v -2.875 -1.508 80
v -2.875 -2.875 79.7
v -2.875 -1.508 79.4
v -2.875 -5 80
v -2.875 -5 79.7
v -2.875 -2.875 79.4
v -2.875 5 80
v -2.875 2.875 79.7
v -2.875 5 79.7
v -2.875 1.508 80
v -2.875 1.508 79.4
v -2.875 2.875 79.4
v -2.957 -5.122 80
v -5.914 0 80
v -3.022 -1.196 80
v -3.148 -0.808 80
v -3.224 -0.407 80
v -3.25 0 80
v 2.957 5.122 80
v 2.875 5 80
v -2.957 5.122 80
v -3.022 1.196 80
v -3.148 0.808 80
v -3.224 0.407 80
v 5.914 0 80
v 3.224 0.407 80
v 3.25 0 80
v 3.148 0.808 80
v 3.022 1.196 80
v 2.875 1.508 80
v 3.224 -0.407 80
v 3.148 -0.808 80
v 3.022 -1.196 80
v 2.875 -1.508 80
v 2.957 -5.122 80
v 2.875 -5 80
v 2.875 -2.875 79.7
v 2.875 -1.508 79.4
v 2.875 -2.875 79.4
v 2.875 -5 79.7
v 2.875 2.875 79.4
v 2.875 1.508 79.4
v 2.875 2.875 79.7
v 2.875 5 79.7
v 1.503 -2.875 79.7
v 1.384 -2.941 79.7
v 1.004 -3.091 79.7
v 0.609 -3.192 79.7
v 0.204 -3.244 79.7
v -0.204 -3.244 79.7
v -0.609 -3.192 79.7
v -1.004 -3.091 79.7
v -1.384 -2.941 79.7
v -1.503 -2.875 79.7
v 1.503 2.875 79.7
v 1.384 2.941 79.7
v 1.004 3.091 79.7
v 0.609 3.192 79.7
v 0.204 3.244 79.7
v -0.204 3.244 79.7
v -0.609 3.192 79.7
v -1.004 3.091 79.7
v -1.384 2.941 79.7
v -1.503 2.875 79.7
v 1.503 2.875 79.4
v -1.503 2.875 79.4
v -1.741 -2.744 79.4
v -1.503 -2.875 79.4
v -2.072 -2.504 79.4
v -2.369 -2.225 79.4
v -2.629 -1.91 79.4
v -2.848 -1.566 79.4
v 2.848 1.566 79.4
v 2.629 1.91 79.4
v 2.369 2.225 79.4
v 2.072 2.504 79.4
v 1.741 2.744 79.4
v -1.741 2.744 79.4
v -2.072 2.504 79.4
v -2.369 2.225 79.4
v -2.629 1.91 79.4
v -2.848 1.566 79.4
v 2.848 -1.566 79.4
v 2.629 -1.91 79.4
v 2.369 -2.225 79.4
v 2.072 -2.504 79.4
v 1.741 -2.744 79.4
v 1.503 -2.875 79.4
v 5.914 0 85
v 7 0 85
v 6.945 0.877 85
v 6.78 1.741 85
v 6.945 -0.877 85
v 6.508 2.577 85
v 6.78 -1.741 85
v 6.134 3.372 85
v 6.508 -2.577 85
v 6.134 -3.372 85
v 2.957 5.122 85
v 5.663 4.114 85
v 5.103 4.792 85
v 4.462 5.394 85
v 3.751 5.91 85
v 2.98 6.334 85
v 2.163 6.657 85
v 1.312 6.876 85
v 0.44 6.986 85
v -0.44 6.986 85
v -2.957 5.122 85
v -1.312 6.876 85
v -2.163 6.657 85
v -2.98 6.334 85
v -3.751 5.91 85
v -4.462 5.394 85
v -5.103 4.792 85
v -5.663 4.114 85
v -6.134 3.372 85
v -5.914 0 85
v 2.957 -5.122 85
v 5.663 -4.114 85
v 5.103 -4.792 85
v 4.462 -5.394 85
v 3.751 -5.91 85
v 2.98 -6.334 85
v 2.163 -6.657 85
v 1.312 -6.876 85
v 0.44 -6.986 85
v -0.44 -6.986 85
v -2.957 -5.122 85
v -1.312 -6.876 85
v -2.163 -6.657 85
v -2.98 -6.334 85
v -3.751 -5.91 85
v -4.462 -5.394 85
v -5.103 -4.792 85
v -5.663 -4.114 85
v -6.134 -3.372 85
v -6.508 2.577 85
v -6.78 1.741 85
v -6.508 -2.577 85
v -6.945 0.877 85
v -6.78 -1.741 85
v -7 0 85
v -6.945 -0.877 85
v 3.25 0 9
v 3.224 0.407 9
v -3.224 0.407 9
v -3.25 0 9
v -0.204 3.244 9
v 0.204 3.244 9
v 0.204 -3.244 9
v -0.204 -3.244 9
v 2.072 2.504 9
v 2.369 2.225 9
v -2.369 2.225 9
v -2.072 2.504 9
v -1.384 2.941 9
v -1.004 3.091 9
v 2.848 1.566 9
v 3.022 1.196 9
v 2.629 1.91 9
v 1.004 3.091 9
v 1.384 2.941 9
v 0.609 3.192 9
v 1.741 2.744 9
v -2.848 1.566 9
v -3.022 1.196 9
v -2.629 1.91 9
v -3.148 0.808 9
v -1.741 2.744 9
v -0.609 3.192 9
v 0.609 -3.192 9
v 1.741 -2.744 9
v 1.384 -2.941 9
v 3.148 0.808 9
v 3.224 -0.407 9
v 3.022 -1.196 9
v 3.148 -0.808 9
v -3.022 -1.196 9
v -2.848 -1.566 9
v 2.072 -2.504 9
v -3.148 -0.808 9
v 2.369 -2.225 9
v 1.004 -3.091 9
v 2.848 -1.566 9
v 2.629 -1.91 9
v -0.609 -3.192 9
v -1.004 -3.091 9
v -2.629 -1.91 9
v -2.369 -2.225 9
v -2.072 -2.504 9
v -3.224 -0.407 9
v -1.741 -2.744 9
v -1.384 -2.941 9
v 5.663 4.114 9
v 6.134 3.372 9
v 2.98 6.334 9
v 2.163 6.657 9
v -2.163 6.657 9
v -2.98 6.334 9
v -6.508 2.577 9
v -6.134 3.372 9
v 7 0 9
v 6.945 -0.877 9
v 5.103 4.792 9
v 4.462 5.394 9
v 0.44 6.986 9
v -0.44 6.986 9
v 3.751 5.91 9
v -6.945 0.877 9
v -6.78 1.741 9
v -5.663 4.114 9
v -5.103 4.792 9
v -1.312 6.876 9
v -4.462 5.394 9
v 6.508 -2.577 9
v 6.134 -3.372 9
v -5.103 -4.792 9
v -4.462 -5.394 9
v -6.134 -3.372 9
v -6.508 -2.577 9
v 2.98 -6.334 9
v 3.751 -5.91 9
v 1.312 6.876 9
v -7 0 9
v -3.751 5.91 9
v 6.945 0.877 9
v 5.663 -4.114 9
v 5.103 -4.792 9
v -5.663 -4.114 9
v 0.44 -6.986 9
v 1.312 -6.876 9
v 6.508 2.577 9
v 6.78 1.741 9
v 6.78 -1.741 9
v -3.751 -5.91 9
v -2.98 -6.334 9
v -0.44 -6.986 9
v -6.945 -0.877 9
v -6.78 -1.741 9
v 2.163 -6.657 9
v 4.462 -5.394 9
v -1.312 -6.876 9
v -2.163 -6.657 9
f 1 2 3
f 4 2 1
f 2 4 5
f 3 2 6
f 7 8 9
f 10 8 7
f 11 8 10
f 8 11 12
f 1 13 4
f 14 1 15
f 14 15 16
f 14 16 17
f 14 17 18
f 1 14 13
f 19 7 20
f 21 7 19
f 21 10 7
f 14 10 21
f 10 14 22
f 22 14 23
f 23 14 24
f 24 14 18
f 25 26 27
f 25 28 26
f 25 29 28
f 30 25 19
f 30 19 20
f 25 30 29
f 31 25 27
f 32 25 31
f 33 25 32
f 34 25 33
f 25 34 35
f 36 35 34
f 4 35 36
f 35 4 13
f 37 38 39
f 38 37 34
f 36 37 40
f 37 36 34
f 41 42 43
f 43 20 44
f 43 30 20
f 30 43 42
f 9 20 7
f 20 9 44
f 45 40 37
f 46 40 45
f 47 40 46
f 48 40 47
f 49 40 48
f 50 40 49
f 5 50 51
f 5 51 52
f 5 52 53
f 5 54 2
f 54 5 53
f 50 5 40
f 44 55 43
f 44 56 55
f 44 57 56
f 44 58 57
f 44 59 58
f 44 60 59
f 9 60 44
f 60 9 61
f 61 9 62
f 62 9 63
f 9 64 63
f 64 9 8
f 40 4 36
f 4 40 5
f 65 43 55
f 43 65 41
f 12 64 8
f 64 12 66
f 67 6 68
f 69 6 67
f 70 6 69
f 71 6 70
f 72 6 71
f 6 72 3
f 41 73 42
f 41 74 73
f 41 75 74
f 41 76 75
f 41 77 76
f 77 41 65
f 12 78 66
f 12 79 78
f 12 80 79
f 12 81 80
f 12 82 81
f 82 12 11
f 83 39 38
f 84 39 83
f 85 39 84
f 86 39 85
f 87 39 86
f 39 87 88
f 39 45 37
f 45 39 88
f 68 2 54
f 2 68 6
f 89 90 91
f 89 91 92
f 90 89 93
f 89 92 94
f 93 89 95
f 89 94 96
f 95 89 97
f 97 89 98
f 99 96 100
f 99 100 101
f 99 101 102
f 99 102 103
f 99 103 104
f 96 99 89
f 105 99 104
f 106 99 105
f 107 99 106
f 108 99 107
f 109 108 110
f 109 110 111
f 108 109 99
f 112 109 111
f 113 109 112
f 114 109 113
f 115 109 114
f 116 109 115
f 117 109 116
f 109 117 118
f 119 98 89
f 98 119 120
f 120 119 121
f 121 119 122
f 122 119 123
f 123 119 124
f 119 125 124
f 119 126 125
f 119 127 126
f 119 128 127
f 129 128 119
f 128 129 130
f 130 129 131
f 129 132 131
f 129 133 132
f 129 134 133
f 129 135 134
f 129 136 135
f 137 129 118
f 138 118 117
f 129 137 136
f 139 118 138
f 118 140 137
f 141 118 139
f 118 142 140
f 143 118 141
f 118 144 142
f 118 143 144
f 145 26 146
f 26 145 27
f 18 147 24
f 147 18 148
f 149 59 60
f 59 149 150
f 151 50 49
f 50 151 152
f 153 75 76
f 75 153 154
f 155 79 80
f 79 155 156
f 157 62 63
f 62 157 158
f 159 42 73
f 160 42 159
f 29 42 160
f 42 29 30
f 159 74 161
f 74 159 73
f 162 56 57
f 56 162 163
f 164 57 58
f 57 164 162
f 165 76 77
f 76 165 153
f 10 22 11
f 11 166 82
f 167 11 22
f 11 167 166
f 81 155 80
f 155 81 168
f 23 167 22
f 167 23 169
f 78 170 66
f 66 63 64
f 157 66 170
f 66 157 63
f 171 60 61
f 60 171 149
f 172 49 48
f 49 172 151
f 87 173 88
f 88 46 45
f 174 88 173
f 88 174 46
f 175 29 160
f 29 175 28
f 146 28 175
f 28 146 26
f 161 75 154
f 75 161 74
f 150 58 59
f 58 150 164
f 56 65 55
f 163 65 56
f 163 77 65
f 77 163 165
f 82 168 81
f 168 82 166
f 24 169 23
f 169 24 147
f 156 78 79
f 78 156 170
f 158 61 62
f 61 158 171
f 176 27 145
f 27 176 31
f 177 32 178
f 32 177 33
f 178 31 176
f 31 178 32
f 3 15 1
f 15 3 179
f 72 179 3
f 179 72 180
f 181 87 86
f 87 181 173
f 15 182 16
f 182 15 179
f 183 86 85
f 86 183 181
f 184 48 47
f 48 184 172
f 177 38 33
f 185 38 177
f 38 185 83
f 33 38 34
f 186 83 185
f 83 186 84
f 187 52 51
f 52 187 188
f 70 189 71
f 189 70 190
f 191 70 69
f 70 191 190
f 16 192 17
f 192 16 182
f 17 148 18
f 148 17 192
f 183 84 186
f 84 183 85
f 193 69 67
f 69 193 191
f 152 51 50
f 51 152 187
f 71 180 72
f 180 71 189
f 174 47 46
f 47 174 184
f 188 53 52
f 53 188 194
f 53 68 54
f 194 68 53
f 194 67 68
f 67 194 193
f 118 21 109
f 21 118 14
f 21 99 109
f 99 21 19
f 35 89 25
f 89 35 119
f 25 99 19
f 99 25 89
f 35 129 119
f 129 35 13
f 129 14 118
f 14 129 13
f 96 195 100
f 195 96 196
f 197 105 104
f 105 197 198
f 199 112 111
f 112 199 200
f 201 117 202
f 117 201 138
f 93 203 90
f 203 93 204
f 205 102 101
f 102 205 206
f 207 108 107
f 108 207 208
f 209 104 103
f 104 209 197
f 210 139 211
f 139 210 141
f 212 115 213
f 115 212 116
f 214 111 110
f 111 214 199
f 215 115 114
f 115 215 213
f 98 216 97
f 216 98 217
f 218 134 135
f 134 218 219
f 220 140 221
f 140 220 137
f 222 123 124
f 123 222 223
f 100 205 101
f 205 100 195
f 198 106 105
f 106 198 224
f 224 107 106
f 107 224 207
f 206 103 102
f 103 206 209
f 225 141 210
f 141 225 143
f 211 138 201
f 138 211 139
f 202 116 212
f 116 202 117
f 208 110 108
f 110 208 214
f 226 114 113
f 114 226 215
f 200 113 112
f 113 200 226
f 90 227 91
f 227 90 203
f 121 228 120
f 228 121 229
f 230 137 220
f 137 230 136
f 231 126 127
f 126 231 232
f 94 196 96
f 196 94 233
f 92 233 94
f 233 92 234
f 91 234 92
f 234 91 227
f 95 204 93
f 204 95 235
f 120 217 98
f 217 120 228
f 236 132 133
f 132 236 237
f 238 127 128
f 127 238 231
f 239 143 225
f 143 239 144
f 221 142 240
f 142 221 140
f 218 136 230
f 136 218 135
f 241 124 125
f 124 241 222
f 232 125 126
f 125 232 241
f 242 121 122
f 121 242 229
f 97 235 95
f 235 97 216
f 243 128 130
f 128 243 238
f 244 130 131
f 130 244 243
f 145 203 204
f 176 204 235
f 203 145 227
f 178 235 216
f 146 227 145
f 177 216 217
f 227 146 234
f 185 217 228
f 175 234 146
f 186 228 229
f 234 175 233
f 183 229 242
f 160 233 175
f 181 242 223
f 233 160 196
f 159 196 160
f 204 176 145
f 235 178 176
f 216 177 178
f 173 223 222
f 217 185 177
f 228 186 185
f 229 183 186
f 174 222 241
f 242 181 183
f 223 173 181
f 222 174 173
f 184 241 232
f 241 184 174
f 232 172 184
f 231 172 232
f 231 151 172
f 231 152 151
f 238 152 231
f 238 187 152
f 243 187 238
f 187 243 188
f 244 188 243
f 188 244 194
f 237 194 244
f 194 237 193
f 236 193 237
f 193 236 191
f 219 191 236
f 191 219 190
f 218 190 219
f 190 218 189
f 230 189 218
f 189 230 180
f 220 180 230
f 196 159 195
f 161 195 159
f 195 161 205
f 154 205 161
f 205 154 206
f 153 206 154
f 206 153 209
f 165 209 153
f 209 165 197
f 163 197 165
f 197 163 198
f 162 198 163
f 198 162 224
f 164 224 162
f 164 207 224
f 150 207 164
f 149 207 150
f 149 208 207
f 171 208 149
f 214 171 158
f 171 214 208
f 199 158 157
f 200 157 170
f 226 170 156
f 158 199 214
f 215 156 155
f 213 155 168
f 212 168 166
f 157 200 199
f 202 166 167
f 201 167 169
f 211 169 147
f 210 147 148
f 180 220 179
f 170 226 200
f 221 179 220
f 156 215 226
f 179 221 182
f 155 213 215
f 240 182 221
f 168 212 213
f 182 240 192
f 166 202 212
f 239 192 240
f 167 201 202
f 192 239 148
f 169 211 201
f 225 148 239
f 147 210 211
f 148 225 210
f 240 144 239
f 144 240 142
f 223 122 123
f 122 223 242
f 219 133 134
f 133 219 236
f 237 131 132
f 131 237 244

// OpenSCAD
$fn = 50;


difference() {
	union() {
		translate(v = [0, 0, 9.0000000000]) {
			cylinder(h = 76, r = 7.0000000000);
		}
	}
	union() {
		translate(v = [0, 0, 85]) {
			rotate(a = [0, 0, 0]) {
				difference() {
					union() {
						#translate(v = [-2.8750000000, -5.0000000000, -5.3000000000]) {
							cube(size = [5.7500000000, 10, 0.3000000000]);
						}
						#translate(v = [-2.8750000000, -2.8750000000, -5.6000000000]) {
							cube(size = [5.7500000000, 5.7500000000, 0.3000000000]);
						}
						#translate(v = [-2.8750000000, -5.0000000000, 0]) {
							cube(size = [5.7500000000, 10, 0.3000000000]);
						}
						#translate(v = [-2.8750000000, -2.8750000000, 0.3000000000]) {
							cube(size = [5.7500000000, 5.7500000000, 0.3000000000]);
						}
						#translate(v = [0, 0, -100.0000000000]) {
							cylinder(h = 200, r = 3.2500000000);
						}
						translate(v = [0, 0, -5]) {
							#linear_extrude(height = 5) {
								polygon(points = [[5.9142500000, 0.0000000000], [2.9571250000, 5.1218907443], [-2.9571250000, 5.1218907443], [-5.9142500000, 0.0000000000], [-2.9571250000, -5.1218907443], [2.9571250000, -5.1218907443]]);
							}
						}
						#translate(v = [-2.8750000000, -5.0000000000, -5.3000000000]) {
							cube(size = [5.7500000000, 10, 0.3000000000]);
						}
						#translate(v = [-2.8750000000, -2.8750000000, -5.6000000000]) {
							cube(size = [5.7500000000, 5.7500000000, 0.3000000000]);
						}
						#translate(v = [-2.8750000000, -5.0000000000, 0]) {
							cube(size = [5.7500000000, 10, 0.3000000000]);
						}
						#translate(v = [-2.8750000000, -2.8750000000, 0.3000000000]) {
							cube(size = [5.7500000000, 5.7500000000, 0.3000000000]);
						}
						#translate(v = [0, 0, -100.0000000000]) {
							cylinder(h = 200, r = 3.2500000000);
						}
						#translate(v = [-2.8750000000, -5.0000000000, -5.3000000000]) {
							cube(size = [5.7500000000, 10, 0.3000000000]);
						}
						#translate(v = [-2.8750000000, -2.8750000000, -5.6000000000]) {
							cube(size = [5.7500000000, 5.7500000000, 0.3000000000]);
						}
						#translate(v = [-2.8750000000, -5.0000000000, 0]) {
							cube(size = [5.7500000000, 10, 0.3000000000]);
						}
						#translate(v = [-2.8750000000, -2.8750000000, 0.3000000000]) {
							cube(size = [5.7500000000, 5.7500000000, 0.3000000000]);
						}
						#translate(v = [0, 0, -100.0000000000]) {
							cylinder(h = 200, r = 3.2500000000);
						}
					}
					union();
				}
			}
		}
		#translate(v = [0, 0, -100.0000000000]) {
			cylinder(h = 200, r = 3.2500000000);
		}
	}
}
